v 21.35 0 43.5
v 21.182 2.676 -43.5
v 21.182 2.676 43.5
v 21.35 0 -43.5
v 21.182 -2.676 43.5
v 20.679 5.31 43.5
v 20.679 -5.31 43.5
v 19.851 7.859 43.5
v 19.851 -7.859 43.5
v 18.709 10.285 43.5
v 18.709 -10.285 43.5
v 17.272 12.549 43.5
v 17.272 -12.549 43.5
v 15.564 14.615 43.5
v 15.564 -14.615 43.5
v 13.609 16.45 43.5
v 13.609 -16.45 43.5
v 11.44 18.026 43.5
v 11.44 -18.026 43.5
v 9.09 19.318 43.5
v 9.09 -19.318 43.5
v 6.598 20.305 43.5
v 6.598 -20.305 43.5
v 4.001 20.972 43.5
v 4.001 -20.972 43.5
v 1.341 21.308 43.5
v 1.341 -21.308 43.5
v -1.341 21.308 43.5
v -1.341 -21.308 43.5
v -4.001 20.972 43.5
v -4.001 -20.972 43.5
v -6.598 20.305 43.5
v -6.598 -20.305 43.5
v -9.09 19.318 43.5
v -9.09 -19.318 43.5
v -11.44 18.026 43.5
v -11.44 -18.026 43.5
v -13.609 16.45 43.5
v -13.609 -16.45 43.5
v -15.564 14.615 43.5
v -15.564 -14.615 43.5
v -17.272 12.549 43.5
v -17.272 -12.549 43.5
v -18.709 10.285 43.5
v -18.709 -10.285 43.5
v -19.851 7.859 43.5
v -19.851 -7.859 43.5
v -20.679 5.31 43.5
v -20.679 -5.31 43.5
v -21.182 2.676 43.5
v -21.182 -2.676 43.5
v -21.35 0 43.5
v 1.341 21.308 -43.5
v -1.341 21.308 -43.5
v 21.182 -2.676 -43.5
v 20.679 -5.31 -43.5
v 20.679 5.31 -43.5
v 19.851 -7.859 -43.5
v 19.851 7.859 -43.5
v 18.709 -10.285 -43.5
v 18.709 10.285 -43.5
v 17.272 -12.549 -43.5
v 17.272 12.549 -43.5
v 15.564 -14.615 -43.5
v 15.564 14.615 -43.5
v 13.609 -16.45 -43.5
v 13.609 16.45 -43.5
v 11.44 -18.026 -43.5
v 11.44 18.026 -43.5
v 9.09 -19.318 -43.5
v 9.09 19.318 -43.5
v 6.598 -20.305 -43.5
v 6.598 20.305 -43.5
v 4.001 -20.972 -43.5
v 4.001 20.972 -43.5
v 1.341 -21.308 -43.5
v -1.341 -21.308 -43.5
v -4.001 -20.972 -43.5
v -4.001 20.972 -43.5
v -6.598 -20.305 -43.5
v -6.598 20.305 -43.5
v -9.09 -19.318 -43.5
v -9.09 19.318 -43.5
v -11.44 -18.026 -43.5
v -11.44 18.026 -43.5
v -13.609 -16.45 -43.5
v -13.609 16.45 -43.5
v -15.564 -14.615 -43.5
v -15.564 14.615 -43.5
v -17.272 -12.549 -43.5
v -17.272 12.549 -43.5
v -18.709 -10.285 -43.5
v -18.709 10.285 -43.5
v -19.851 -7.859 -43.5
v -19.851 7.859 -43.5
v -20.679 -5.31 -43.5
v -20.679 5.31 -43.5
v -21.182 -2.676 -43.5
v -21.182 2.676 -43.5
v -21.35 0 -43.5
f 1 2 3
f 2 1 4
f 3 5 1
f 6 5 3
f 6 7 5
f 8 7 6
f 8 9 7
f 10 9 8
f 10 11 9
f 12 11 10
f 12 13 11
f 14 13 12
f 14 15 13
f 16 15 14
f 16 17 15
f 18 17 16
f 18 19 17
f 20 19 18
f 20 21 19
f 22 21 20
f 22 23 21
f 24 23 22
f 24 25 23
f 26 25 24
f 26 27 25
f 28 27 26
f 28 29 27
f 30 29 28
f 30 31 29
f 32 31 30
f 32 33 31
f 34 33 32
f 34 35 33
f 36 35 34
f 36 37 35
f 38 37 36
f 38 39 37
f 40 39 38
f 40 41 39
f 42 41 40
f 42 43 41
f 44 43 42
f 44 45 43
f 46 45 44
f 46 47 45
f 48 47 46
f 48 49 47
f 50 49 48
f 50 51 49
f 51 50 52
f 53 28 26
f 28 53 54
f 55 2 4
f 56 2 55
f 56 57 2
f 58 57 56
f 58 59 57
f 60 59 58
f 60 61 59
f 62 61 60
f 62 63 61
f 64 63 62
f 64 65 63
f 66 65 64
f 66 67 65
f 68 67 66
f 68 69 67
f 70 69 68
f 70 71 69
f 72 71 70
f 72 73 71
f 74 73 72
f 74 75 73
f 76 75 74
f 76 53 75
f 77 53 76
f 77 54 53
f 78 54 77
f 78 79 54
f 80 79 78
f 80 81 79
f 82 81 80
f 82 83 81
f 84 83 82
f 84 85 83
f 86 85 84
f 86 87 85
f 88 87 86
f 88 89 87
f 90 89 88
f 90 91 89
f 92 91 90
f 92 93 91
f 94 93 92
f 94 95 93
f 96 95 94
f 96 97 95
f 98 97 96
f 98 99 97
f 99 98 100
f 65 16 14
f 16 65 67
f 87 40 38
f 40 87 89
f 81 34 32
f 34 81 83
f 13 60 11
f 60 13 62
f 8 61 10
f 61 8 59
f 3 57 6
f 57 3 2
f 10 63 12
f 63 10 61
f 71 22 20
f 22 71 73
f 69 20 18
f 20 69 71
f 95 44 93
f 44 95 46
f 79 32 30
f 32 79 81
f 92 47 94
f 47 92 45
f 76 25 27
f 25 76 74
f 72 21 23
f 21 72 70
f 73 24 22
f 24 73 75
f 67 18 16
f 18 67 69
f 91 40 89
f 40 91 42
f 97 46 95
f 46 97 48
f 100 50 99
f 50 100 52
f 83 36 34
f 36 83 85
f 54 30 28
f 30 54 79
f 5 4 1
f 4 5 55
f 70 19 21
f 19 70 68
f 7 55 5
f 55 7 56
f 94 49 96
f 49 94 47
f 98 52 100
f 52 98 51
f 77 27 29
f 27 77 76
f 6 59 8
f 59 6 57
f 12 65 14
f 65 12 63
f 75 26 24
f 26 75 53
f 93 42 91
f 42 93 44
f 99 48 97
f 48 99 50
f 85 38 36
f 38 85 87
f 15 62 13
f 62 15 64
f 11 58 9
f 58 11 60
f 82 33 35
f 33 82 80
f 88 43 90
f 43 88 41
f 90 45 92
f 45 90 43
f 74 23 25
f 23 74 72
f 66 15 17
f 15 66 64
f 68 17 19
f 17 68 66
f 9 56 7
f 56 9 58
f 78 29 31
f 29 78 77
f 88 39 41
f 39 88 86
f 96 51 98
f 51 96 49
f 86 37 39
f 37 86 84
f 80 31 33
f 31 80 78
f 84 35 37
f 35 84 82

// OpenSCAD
$fn = 50;


difference() {
	union() {
		translate(v = [0, 0, -43.5000000000]) {
			cylinder(h = 87, r = 21.3500000000);
		}
	}
	union() {
		translate(v = [0, 0, -100.0000000000]) {
			cylinder(h = 200, r = 0);
		}
	}
}
